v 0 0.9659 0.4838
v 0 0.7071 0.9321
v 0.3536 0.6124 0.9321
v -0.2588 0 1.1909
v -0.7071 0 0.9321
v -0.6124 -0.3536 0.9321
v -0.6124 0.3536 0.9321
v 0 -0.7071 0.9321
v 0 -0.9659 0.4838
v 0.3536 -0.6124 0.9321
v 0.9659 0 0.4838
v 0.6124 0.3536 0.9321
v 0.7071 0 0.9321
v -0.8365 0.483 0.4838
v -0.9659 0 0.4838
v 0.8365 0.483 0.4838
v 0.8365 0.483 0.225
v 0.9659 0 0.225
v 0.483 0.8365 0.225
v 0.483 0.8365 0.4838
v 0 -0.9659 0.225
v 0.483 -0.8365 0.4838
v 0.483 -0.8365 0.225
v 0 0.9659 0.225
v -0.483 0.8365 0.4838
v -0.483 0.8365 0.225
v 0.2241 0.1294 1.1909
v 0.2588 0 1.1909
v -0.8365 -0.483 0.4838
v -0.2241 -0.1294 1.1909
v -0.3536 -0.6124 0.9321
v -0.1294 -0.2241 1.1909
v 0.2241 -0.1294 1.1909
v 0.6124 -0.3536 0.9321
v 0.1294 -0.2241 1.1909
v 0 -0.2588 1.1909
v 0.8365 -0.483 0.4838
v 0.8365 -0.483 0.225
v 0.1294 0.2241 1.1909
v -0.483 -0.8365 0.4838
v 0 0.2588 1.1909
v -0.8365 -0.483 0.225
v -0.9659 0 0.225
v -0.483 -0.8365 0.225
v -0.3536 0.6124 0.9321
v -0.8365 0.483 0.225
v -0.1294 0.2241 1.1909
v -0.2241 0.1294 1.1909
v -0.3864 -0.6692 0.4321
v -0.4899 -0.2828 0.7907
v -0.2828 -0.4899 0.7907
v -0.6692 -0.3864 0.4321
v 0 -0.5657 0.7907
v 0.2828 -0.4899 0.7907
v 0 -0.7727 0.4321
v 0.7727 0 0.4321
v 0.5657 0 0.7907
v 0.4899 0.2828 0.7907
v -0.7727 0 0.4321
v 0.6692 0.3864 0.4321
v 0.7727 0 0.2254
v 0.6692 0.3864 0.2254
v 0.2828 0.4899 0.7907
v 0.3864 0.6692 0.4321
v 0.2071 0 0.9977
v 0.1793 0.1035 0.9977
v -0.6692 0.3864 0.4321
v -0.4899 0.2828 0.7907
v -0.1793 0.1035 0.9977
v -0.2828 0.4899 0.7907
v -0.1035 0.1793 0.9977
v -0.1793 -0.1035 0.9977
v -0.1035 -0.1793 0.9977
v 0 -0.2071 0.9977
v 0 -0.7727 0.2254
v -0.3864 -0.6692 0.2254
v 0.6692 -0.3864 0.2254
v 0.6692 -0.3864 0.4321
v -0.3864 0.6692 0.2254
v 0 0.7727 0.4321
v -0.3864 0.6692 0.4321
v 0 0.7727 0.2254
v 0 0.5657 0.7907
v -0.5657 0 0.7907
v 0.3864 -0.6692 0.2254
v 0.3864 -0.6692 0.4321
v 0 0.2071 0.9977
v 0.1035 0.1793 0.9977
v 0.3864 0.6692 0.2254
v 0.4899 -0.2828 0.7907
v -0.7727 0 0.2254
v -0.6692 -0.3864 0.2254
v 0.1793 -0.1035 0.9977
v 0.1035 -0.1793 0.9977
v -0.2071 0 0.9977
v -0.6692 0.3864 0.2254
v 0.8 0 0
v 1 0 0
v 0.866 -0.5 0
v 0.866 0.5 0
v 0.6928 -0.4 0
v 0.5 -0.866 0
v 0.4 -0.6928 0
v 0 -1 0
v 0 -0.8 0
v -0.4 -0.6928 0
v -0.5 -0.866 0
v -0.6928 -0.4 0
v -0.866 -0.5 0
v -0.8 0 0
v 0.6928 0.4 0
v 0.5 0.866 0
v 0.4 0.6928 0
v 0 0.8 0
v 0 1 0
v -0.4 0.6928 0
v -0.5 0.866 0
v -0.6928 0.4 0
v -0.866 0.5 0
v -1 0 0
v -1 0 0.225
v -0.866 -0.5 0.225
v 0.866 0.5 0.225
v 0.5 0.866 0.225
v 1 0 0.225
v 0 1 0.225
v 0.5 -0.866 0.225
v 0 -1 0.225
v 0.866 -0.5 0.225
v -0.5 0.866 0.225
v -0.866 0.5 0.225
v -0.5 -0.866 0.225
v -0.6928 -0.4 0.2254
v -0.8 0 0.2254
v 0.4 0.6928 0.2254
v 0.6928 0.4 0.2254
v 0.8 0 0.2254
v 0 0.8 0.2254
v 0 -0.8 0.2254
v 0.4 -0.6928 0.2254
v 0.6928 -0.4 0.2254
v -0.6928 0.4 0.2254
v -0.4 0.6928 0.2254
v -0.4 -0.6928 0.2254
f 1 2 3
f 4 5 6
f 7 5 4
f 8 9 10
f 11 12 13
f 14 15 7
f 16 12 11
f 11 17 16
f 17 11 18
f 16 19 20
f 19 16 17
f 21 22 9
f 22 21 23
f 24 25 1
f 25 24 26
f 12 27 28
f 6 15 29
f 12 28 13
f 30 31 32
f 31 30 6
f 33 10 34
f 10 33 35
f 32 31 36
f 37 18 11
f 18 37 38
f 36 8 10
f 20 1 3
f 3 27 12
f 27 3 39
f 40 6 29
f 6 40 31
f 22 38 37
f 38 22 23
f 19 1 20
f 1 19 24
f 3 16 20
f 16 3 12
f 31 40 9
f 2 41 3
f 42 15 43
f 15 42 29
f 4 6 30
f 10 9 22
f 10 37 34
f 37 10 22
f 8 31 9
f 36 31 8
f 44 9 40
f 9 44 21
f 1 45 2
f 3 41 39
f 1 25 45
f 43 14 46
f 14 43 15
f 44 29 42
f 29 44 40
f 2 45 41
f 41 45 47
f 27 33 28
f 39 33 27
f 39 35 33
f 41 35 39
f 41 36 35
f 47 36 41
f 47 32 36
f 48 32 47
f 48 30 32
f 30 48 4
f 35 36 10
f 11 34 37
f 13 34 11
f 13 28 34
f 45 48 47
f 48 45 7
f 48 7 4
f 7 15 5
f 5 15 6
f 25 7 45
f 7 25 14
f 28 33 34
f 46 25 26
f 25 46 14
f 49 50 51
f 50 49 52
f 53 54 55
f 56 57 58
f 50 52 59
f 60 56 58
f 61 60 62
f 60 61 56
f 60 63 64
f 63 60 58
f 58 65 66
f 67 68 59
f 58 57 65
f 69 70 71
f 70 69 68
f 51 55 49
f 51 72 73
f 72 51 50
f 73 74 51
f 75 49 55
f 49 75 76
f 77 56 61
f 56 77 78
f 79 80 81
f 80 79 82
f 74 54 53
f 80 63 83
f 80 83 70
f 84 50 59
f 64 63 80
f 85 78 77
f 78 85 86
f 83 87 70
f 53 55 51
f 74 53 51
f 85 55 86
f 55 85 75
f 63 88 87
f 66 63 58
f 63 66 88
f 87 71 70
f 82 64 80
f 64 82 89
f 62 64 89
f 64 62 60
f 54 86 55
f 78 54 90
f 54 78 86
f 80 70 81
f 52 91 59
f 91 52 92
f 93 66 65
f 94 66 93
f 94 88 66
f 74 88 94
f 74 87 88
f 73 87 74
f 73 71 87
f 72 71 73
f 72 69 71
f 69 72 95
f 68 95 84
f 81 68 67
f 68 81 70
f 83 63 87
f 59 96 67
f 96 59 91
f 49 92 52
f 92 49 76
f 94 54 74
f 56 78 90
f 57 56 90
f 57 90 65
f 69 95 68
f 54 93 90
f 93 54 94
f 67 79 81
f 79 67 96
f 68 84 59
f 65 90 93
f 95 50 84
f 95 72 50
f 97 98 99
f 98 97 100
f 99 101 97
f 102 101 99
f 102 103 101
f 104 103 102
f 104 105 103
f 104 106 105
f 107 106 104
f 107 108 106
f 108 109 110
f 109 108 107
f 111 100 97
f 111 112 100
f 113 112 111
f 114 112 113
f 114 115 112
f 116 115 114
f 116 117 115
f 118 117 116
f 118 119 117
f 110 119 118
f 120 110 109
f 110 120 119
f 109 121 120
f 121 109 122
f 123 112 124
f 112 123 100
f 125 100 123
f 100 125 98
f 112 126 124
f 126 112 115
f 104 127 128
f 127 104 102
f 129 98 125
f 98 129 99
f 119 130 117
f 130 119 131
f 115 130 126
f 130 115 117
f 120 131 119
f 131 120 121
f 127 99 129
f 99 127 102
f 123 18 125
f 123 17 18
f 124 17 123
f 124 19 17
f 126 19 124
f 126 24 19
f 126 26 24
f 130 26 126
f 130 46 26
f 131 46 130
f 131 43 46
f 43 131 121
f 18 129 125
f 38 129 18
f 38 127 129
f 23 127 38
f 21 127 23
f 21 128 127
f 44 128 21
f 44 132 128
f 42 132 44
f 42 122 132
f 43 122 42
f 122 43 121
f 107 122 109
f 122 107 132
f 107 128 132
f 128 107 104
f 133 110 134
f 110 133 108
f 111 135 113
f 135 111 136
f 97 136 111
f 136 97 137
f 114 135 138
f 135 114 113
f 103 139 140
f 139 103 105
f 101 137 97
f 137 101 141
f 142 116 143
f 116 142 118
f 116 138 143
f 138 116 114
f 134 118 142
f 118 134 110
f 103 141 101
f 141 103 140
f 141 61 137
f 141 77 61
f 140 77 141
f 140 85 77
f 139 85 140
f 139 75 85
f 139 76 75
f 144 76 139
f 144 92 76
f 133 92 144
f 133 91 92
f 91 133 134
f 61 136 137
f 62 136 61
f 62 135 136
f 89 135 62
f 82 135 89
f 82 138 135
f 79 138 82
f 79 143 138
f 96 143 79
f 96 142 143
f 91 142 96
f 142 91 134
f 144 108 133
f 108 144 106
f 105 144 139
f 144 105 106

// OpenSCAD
eps=0.00075;
hole_attach_height=0.075;
hole_radius=0.075;
outer_radius=1;
thickness=0.2;
hole_twist=90.0;
//other params
inner_radius = outer_radius - thickness;
fn = 12;
fnh = 6;

difference() {
    union() {
        difference() {
            //sphere
            translate([0,0,hole_radius*2 + hole_attach_height])
            sphere(r=outer_radius, $fn = fn);
            
            //shelling
            translate([0,0,hole_radius*2 + hole_attach_height])
            sphere(r=inner_radius, $fn = fn);
            
            translate([0,0,-outer_radius])
            cylinder(h=outer_radius, r= outer_radius, $fn = fn);
        }
        
        //attach segment
        cylinder(h=hole_radius*2 + hole_attach_height, r = outer_radius, $fn = fn);
    }
    
    translate([0,0,-outer_radius -eps/2])
    cylinder(h=hole_radius*2 + hole_attach_height + outer_radius + eps, r = inner_radius, $fn = fn);
    
//    translate([0,0,hole_attach_height + hole_radius]) 
//    rotate([0,0,hole_twist]){
//        rotate([90,0,0])
//        cylinder(h=outer_radius * 2 + eps, r = hole_radius, center=true, $fn = fnh);
//        rotate([0,90,0])
//        cylinder(h=outer_radius * 2 + eps, r = hole_radius, center=true, $fn = fnh);
//    }
    
}
